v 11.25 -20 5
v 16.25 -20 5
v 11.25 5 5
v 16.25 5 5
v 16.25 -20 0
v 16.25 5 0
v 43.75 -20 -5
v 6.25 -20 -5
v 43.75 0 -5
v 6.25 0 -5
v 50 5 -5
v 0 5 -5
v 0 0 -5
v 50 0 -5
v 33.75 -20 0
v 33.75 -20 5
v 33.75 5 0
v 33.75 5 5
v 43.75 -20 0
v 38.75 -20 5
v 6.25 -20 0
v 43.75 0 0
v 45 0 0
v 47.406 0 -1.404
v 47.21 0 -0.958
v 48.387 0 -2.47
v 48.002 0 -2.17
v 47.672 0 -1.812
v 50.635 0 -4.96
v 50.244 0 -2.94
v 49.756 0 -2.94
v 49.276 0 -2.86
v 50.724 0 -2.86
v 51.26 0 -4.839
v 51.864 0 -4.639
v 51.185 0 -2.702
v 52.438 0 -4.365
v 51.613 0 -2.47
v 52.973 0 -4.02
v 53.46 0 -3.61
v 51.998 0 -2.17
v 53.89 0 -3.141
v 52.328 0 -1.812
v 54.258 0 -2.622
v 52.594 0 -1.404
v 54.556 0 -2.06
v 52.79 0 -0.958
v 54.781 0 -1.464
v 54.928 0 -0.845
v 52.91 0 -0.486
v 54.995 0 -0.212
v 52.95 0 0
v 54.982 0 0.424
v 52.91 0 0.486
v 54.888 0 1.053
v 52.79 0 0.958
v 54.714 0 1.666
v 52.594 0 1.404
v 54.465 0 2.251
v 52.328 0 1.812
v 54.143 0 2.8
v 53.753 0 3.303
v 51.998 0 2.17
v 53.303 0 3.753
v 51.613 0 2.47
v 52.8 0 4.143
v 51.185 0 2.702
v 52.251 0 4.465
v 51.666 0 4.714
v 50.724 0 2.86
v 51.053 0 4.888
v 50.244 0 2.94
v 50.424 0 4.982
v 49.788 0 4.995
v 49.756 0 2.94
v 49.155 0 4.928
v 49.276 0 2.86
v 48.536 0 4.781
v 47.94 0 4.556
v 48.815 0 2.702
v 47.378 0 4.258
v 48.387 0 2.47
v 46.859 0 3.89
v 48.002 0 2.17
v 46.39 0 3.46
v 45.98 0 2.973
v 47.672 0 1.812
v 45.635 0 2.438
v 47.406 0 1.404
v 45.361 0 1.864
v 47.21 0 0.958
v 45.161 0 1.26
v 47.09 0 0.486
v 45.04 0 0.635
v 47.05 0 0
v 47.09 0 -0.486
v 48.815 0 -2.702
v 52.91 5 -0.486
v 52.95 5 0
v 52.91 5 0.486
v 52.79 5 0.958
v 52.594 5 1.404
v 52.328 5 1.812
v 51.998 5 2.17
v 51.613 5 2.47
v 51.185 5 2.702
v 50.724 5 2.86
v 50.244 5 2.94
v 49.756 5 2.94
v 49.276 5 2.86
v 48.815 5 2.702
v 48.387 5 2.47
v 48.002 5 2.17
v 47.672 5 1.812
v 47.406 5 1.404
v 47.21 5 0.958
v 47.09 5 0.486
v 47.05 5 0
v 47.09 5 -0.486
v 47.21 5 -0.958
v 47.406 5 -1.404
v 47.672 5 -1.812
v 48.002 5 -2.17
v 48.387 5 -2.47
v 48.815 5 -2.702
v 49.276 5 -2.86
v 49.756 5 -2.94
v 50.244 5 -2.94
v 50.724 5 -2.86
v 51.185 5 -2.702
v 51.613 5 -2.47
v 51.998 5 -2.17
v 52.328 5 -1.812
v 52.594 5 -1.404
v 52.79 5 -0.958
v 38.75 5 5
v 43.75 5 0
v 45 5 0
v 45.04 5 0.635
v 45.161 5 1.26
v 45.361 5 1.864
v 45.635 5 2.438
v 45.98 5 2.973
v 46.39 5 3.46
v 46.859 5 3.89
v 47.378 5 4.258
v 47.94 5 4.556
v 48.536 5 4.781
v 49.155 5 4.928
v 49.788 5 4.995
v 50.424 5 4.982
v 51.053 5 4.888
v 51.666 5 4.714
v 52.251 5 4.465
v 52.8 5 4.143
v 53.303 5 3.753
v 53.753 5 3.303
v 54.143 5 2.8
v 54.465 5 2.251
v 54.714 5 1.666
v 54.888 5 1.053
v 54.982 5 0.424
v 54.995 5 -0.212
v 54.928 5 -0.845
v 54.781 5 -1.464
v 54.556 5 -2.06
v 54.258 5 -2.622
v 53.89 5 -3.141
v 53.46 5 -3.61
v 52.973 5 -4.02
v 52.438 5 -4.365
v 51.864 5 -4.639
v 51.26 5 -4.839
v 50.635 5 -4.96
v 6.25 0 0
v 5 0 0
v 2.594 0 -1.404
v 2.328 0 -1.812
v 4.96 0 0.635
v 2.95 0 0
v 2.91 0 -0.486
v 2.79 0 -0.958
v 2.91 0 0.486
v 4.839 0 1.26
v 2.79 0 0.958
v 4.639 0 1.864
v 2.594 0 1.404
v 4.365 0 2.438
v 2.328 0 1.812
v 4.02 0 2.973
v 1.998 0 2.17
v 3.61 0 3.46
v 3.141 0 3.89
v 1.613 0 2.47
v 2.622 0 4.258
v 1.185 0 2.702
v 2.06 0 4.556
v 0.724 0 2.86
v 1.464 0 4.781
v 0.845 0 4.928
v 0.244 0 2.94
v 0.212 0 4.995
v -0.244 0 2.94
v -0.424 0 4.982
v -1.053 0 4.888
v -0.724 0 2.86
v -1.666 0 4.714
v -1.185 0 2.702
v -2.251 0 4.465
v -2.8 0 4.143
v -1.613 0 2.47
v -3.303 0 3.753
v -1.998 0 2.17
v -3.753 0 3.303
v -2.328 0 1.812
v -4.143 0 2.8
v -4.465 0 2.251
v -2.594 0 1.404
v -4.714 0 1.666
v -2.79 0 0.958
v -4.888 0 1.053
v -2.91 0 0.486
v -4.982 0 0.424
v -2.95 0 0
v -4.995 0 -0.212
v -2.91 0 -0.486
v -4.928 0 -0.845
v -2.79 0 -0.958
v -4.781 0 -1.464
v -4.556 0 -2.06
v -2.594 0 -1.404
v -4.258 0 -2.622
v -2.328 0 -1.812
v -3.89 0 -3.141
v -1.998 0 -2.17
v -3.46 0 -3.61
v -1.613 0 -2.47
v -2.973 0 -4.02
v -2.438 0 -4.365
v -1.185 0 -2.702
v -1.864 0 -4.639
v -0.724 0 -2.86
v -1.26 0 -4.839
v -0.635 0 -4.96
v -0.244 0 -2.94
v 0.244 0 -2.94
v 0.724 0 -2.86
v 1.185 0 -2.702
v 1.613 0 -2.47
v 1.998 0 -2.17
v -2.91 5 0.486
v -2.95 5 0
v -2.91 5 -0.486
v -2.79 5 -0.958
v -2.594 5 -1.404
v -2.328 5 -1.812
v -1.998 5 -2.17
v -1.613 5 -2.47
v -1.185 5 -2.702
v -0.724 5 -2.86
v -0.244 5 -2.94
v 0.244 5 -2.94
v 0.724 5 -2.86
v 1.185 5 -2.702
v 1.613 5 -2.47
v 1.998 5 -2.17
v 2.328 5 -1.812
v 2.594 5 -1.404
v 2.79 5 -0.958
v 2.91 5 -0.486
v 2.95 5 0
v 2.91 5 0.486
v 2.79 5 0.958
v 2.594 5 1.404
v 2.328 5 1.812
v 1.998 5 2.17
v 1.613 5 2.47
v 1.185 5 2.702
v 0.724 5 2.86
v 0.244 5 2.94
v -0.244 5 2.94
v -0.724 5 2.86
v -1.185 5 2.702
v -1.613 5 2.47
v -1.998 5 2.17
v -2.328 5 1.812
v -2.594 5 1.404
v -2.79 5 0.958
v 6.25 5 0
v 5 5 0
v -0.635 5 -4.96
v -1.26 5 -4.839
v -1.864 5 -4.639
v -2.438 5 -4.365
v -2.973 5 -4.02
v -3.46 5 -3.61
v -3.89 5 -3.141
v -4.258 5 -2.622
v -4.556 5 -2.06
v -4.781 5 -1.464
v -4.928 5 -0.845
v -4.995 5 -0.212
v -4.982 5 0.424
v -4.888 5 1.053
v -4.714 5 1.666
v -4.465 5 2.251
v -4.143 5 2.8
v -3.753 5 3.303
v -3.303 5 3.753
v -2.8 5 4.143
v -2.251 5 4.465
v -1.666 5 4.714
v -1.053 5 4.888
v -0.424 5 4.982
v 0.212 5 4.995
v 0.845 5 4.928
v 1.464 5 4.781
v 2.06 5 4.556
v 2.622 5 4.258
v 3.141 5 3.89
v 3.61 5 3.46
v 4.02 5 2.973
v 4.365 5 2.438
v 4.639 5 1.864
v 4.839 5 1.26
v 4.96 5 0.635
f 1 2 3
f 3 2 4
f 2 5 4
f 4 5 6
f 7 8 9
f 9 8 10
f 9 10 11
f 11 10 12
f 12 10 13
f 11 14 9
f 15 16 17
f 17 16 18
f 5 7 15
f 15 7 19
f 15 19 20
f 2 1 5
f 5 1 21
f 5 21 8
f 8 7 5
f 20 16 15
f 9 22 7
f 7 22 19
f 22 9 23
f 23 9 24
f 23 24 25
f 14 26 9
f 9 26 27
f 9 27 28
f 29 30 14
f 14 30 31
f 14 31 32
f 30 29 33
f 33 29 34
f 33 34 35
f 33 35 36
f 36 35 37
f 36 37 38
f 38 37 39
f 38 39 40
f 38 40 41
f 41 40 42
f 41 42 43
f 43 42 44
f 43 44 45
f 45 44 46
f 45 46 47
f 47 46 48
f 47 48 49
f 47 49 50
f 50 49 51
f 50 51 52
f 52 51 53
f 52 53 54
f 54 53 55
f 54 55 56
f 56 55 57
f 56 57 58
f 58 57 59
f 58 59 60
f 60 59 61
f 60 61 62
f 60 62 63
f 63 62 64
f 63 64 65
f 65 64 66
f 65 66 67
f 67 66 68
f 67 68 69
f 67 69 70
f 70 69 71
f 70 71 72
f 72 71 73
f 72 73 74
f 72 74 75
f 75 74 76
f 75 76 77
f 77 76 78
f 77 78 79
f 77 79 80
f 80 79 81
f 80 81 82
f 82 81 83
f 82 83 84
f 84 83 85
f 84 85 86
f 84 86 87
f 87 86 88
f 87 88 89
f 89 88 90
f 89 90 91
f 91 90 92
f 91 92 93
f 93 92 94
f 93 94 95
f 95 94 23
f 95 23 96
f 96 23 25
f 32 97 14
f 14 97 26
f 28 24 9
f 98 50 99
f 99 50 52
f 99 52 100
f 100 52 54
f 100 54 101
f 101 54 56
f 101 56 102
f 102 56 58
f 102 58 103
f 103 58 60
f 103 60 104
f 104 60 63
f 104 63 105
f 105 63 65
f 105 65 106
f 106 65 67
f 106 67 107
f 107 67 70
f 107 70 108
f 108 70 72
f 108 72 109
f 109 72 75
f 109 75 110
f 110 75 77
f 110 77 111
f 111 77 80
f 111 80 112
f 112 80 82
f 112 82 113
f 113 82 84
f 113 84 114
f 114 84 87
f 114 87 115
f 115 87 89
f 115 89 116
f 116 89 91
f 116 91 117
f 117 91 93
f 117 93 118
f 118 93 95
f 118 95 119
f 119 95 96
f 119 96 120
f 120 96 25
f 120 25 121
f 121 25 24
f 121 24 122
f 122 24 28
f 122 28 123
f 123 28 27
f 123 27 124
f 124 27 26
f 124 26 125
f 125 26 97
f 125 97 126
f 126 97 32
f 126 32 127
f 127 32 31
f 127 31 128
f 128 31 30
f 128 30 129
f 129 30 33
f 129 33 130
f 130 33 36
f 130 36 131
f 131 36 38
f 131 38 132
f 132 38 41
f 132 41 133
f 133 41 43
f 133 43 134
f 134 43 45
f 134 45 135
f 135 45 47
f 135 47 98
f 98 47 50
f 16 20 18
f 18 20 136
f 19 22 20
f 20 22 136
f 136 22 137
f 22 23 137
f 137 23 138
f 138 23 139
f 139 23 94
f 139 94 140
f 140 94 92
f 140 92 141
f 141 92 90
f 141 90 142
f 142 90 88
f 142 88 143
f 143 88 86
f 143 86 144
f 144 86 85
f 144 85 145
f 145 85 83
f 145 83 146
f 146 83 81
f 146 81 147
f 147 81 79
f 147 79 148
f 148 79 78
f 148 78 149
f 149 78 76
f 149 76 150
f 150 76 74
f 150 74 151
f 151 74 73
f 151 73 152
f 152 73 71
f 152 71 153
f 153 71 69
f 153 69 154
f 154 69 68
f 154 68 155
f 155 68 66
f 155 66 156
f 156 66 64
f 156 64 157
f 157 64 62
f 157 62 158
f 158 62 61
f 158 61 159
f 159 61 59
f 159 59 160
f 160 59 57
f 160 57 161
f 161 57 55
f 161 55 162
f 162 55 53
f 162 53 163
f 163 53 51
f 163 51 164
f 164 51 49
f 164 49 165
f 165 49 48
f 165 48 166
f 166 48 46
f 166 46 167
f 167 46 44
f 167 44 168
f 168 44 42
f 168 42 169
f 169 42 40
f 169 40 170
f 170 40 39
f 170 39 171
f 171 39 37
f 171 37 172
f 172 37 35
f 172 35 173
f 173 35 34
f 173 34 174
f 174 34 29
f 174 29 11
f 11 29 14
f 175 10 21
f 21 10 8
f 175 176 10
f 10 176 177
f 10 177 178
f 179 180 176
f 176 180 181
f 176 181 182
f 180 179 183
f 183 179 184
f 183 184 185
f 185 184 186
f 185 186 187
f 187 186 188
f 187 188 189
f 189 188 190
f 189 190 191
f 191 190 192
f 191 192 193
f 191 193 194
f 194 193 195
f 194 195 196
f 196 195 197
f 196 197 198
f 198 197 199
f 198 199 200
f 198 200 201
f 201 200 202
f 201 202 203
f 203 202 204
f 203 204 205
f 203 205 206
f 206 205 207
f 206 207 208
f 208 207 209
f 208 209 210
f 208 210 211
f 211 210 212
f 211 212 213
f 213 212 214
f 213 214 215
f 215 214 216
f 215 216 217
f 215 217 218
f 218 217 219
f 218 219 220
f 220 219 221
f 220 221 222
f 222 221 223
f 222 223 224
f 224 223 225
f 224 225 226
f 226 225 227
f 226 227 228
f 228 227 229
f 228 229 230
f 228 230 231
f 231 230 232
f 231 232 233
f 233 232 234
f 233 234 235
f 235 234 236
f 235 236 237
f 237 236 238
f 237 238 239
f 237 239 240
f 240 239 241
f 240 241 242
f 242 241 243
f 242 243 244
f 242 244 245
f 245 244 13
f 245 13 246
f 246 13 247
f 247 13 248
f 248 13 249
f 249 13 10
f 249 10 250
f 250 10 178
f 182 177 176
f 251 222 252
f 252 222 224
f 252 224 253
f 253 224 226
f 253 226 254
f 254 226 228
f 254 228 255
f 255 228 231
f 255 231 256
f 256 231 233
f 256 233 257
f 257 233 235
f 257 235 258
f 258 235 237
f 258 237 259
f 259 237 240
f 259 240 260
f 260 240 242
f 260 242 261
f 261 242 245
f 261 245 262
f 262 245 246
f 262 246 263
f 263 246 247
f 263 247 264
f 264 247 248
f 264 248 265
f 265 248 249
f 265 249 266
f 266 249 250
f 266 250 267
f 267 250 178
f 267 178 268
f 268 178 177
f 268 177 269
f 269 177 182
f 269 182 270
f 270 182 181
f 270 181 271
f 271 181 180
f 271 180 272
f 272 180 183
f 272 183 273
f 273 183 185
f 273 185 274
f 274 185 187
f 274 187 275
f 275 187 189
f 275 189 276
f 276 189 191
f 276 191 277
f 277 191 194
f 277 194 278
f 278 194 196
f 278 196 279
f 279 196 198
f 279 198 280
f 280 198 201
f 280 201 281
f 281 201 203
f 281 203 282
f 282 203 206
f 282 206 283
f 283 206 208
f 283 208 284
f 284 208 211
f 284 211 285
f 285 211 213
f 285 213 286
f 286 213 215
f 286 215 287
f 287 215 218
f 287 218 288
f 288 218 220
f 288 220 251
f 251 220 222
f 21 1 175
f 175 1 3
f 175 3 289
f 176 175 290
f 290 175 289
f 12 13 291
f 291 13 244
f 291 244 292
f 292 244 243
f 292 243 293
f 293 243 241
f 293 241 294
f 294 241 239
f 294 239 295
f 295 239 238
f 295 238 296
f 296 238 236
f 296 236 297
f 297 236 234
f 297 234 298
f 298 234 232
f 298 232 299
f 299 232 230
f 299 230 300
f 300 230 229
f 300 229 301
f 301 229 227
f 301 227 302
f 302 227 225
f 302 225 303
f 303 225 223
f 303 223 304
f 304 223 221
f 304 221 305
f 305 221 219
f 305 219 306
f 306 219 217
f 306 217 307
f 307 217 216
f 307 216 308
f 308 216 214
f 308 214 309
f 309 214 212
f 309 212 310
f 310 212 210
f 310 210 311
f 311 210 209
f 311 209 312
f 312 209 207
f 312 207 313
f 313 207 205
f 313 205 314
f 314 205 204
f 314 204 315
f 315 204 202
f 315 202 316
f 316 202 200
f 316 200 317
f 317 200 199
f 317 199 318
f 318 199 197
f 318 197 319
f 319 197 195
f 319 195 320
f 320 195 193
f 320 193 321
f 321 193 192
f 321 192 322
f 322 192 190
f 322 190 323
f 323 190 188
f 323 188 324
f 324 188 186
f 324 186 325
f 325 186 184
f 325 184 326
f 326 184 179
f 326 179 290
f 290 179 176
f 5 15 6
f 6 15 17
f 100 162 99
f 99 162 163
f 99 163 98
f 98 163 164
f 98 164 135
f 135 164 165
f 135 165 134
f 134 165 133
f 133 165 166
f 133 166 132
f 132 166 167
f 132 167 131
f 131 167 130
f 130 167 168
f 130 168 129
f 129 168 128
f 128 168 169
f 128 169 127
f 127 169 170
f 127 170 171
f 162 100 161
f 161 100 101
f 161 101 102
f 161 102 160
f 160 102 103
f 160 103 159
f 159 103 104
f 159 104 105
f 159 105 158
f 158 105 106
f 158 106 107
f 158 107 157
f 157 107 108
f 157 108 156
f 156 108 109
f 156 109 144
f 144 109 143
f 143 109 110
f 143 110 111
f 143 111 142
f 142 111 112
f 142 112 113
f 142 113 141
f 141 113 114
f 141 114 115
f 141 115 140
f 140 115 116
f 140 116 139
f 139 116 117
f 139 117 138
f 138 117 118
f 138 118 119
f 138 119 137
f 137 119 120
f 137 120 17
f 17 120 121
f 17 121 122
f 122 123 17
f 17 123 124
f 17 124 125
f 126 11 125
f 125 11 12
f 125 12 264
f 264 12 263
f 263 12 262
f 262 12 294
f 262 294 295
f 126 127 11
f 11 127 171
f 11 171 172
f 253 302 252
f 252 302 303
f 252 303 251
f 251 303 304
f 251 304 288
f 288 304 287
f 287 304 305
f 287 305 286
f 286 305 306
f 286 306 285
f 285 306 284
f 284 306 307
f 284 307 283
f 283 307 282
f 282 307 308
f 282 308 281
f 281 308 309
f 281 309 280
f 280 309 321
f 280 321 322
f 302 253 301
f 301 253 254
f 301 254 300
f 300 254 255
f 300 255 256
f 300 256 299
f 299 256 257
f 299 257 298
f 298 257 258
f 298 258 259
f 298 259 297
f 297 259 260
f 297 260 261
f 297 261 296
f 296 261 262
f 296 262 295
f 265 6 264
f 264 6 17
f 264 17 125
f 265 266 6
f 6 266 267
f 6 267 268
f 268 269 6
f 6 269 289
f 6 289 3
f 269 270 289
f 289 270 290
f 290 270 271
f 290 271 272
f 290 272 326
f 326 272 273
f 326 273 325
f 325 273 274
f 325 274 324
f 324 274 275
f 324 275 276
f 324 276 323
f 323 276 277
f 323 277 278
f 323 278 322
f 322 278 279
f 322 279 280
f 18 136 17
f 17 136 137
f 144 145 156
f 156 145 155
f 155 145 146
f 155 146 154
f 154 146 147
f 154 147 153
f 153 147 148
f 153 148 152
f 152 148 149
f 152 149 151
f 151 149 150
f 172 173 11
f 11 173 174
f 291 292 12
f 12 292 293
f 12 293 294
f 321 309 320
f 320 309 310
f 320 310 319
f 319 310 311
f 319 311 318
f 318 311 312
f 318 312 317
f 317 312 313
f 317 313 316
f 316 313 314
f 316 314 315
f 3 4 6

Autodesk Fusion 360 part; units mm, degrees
sketch "Sketch1" plane through (0, 0, 0) normal (0, 1, 0) x (1, 0, 0)
  circle A0 centre (0, 0) radius 2.95
  line L0 (0, 0) -> (25, 0) construction
  line L1 (25, -32.2093) -> (25, 32.2093)
  circle A1 centre (0, 0) radius 5
  line L2 (0, 5) -> (25, 5)
  line L3 (5, 0) -> (25, 0)
  line L4 (16.25, 0) -> (16.25, -5)
  line L5 (16.25, -5) -> (11.25, -5)
  line L6 (11.25, -5) -> (6.25, 0)
  line L7 (11.25, -5) -> (18.3211, -5) construction
  dimension "d1" = 5.9
  dimension "d2" = 25
  dimension "d3" = 10
  dimension "d4" = 17.5
  dimension "d5" = 5
  dimension "d6" = 5
  dimension "d7" = 135
extrude "Extrude1" add sketch "Sketch1" along normal blind 5
sketch "Sketch2" plane through (0, 0, 0) normal (0, -1, 0) x (1, 0, 0)
  circle A0 centre (0, 0) radius 2.95
  line L0 (25, 0) -> (16.25, 0)
  line L1 (16.25, 0) -> (16.25, 5)
  line L2 (16.25, 5) -> (11.25, 5)
  line L3 (11.25, 5) -> (6.25, 0)
  line L4 (6.25, 0) -> (5, 0)
  arc A1 (5, 0) -> (0, -5) centre (0, 0) ccw
  line L5 (0, -5) -> (25, -5)
  line L6 (25, -5) -> (25, 0)
  line L7 (6.25, 0) -> (6.25, -5)
extrude "Extrude2" add sketch "Sketch2" along normal blind 20 contours L0 L1 L2 L3 L5 L6 L7
sketch "Sketch3" plane through (0, -20, 0) normal (0, -1, 0) x (1, 0, 0)
  line L0 (6.25, 0) -> (6.25, -5)
  line L1 (6.25, -5) -> (25, -5)
  line L2 (25, -5) -> (25, 0)
  line L3 (25, 0) -> (16.25, 0)
  line L4 (16.25, 0) -> (16.25, 5)
  line L5 (16.25, 5) -> (11.25, 5)
  line L6 (11.25, 5) -> (6.25, 0)
  line L7 (6.25, -5) -> (6.25, 0)
  line L8 (6.25, 0) -> (5, 0)
  arc A0 (5, 0) -> (0, -5) centre (0, 0) ccw
  line L9 (0, -5) -> (6.25, -5)
  circle A1 centre (0, 0) radius 2.95
extrude "Extrude3" add sketch "Sketch3" along normal blind 5
mirror "Mirror1" about plane through (25, 0, -5) normal (1, 0, 0) of bodies 1 merged
sketch "Sketch4" plane through (0, 0, 0) normal (0, 0, 1) x (-1, 0, 0)
  line L0 (-33.75, -5) -> (-16.25, -5)
  line L1 (-16.25, -5) -> (-16.25, 25)
  line L2 (-16.25, 25) -> (-33.75, 25)
  line L3 (-33.75, 25) -> (-33.75, -5)
  line L4 (-33.75, 25) -> (-16.25, 25)
  line L5 (-16.25, 25) -> (-16.25, 20)
  line L6 (-16.25, 20) -> (-33.75, 20)
  line L7 (-33.75, 20) -> (-33.75, 25)
  dimension "d16" = 17.5
  dimension "d17" = 5
extrude "Extrude4" cut sketch "Sketch4" against normal blind 5 contours L1 L2 L3 L4 L5 L6 L7
extrude "Extrude5" cut 2 faces at (11.25, -25, 0) (38.75, -25, 0) along direction (0, 1, 0) blind 5
